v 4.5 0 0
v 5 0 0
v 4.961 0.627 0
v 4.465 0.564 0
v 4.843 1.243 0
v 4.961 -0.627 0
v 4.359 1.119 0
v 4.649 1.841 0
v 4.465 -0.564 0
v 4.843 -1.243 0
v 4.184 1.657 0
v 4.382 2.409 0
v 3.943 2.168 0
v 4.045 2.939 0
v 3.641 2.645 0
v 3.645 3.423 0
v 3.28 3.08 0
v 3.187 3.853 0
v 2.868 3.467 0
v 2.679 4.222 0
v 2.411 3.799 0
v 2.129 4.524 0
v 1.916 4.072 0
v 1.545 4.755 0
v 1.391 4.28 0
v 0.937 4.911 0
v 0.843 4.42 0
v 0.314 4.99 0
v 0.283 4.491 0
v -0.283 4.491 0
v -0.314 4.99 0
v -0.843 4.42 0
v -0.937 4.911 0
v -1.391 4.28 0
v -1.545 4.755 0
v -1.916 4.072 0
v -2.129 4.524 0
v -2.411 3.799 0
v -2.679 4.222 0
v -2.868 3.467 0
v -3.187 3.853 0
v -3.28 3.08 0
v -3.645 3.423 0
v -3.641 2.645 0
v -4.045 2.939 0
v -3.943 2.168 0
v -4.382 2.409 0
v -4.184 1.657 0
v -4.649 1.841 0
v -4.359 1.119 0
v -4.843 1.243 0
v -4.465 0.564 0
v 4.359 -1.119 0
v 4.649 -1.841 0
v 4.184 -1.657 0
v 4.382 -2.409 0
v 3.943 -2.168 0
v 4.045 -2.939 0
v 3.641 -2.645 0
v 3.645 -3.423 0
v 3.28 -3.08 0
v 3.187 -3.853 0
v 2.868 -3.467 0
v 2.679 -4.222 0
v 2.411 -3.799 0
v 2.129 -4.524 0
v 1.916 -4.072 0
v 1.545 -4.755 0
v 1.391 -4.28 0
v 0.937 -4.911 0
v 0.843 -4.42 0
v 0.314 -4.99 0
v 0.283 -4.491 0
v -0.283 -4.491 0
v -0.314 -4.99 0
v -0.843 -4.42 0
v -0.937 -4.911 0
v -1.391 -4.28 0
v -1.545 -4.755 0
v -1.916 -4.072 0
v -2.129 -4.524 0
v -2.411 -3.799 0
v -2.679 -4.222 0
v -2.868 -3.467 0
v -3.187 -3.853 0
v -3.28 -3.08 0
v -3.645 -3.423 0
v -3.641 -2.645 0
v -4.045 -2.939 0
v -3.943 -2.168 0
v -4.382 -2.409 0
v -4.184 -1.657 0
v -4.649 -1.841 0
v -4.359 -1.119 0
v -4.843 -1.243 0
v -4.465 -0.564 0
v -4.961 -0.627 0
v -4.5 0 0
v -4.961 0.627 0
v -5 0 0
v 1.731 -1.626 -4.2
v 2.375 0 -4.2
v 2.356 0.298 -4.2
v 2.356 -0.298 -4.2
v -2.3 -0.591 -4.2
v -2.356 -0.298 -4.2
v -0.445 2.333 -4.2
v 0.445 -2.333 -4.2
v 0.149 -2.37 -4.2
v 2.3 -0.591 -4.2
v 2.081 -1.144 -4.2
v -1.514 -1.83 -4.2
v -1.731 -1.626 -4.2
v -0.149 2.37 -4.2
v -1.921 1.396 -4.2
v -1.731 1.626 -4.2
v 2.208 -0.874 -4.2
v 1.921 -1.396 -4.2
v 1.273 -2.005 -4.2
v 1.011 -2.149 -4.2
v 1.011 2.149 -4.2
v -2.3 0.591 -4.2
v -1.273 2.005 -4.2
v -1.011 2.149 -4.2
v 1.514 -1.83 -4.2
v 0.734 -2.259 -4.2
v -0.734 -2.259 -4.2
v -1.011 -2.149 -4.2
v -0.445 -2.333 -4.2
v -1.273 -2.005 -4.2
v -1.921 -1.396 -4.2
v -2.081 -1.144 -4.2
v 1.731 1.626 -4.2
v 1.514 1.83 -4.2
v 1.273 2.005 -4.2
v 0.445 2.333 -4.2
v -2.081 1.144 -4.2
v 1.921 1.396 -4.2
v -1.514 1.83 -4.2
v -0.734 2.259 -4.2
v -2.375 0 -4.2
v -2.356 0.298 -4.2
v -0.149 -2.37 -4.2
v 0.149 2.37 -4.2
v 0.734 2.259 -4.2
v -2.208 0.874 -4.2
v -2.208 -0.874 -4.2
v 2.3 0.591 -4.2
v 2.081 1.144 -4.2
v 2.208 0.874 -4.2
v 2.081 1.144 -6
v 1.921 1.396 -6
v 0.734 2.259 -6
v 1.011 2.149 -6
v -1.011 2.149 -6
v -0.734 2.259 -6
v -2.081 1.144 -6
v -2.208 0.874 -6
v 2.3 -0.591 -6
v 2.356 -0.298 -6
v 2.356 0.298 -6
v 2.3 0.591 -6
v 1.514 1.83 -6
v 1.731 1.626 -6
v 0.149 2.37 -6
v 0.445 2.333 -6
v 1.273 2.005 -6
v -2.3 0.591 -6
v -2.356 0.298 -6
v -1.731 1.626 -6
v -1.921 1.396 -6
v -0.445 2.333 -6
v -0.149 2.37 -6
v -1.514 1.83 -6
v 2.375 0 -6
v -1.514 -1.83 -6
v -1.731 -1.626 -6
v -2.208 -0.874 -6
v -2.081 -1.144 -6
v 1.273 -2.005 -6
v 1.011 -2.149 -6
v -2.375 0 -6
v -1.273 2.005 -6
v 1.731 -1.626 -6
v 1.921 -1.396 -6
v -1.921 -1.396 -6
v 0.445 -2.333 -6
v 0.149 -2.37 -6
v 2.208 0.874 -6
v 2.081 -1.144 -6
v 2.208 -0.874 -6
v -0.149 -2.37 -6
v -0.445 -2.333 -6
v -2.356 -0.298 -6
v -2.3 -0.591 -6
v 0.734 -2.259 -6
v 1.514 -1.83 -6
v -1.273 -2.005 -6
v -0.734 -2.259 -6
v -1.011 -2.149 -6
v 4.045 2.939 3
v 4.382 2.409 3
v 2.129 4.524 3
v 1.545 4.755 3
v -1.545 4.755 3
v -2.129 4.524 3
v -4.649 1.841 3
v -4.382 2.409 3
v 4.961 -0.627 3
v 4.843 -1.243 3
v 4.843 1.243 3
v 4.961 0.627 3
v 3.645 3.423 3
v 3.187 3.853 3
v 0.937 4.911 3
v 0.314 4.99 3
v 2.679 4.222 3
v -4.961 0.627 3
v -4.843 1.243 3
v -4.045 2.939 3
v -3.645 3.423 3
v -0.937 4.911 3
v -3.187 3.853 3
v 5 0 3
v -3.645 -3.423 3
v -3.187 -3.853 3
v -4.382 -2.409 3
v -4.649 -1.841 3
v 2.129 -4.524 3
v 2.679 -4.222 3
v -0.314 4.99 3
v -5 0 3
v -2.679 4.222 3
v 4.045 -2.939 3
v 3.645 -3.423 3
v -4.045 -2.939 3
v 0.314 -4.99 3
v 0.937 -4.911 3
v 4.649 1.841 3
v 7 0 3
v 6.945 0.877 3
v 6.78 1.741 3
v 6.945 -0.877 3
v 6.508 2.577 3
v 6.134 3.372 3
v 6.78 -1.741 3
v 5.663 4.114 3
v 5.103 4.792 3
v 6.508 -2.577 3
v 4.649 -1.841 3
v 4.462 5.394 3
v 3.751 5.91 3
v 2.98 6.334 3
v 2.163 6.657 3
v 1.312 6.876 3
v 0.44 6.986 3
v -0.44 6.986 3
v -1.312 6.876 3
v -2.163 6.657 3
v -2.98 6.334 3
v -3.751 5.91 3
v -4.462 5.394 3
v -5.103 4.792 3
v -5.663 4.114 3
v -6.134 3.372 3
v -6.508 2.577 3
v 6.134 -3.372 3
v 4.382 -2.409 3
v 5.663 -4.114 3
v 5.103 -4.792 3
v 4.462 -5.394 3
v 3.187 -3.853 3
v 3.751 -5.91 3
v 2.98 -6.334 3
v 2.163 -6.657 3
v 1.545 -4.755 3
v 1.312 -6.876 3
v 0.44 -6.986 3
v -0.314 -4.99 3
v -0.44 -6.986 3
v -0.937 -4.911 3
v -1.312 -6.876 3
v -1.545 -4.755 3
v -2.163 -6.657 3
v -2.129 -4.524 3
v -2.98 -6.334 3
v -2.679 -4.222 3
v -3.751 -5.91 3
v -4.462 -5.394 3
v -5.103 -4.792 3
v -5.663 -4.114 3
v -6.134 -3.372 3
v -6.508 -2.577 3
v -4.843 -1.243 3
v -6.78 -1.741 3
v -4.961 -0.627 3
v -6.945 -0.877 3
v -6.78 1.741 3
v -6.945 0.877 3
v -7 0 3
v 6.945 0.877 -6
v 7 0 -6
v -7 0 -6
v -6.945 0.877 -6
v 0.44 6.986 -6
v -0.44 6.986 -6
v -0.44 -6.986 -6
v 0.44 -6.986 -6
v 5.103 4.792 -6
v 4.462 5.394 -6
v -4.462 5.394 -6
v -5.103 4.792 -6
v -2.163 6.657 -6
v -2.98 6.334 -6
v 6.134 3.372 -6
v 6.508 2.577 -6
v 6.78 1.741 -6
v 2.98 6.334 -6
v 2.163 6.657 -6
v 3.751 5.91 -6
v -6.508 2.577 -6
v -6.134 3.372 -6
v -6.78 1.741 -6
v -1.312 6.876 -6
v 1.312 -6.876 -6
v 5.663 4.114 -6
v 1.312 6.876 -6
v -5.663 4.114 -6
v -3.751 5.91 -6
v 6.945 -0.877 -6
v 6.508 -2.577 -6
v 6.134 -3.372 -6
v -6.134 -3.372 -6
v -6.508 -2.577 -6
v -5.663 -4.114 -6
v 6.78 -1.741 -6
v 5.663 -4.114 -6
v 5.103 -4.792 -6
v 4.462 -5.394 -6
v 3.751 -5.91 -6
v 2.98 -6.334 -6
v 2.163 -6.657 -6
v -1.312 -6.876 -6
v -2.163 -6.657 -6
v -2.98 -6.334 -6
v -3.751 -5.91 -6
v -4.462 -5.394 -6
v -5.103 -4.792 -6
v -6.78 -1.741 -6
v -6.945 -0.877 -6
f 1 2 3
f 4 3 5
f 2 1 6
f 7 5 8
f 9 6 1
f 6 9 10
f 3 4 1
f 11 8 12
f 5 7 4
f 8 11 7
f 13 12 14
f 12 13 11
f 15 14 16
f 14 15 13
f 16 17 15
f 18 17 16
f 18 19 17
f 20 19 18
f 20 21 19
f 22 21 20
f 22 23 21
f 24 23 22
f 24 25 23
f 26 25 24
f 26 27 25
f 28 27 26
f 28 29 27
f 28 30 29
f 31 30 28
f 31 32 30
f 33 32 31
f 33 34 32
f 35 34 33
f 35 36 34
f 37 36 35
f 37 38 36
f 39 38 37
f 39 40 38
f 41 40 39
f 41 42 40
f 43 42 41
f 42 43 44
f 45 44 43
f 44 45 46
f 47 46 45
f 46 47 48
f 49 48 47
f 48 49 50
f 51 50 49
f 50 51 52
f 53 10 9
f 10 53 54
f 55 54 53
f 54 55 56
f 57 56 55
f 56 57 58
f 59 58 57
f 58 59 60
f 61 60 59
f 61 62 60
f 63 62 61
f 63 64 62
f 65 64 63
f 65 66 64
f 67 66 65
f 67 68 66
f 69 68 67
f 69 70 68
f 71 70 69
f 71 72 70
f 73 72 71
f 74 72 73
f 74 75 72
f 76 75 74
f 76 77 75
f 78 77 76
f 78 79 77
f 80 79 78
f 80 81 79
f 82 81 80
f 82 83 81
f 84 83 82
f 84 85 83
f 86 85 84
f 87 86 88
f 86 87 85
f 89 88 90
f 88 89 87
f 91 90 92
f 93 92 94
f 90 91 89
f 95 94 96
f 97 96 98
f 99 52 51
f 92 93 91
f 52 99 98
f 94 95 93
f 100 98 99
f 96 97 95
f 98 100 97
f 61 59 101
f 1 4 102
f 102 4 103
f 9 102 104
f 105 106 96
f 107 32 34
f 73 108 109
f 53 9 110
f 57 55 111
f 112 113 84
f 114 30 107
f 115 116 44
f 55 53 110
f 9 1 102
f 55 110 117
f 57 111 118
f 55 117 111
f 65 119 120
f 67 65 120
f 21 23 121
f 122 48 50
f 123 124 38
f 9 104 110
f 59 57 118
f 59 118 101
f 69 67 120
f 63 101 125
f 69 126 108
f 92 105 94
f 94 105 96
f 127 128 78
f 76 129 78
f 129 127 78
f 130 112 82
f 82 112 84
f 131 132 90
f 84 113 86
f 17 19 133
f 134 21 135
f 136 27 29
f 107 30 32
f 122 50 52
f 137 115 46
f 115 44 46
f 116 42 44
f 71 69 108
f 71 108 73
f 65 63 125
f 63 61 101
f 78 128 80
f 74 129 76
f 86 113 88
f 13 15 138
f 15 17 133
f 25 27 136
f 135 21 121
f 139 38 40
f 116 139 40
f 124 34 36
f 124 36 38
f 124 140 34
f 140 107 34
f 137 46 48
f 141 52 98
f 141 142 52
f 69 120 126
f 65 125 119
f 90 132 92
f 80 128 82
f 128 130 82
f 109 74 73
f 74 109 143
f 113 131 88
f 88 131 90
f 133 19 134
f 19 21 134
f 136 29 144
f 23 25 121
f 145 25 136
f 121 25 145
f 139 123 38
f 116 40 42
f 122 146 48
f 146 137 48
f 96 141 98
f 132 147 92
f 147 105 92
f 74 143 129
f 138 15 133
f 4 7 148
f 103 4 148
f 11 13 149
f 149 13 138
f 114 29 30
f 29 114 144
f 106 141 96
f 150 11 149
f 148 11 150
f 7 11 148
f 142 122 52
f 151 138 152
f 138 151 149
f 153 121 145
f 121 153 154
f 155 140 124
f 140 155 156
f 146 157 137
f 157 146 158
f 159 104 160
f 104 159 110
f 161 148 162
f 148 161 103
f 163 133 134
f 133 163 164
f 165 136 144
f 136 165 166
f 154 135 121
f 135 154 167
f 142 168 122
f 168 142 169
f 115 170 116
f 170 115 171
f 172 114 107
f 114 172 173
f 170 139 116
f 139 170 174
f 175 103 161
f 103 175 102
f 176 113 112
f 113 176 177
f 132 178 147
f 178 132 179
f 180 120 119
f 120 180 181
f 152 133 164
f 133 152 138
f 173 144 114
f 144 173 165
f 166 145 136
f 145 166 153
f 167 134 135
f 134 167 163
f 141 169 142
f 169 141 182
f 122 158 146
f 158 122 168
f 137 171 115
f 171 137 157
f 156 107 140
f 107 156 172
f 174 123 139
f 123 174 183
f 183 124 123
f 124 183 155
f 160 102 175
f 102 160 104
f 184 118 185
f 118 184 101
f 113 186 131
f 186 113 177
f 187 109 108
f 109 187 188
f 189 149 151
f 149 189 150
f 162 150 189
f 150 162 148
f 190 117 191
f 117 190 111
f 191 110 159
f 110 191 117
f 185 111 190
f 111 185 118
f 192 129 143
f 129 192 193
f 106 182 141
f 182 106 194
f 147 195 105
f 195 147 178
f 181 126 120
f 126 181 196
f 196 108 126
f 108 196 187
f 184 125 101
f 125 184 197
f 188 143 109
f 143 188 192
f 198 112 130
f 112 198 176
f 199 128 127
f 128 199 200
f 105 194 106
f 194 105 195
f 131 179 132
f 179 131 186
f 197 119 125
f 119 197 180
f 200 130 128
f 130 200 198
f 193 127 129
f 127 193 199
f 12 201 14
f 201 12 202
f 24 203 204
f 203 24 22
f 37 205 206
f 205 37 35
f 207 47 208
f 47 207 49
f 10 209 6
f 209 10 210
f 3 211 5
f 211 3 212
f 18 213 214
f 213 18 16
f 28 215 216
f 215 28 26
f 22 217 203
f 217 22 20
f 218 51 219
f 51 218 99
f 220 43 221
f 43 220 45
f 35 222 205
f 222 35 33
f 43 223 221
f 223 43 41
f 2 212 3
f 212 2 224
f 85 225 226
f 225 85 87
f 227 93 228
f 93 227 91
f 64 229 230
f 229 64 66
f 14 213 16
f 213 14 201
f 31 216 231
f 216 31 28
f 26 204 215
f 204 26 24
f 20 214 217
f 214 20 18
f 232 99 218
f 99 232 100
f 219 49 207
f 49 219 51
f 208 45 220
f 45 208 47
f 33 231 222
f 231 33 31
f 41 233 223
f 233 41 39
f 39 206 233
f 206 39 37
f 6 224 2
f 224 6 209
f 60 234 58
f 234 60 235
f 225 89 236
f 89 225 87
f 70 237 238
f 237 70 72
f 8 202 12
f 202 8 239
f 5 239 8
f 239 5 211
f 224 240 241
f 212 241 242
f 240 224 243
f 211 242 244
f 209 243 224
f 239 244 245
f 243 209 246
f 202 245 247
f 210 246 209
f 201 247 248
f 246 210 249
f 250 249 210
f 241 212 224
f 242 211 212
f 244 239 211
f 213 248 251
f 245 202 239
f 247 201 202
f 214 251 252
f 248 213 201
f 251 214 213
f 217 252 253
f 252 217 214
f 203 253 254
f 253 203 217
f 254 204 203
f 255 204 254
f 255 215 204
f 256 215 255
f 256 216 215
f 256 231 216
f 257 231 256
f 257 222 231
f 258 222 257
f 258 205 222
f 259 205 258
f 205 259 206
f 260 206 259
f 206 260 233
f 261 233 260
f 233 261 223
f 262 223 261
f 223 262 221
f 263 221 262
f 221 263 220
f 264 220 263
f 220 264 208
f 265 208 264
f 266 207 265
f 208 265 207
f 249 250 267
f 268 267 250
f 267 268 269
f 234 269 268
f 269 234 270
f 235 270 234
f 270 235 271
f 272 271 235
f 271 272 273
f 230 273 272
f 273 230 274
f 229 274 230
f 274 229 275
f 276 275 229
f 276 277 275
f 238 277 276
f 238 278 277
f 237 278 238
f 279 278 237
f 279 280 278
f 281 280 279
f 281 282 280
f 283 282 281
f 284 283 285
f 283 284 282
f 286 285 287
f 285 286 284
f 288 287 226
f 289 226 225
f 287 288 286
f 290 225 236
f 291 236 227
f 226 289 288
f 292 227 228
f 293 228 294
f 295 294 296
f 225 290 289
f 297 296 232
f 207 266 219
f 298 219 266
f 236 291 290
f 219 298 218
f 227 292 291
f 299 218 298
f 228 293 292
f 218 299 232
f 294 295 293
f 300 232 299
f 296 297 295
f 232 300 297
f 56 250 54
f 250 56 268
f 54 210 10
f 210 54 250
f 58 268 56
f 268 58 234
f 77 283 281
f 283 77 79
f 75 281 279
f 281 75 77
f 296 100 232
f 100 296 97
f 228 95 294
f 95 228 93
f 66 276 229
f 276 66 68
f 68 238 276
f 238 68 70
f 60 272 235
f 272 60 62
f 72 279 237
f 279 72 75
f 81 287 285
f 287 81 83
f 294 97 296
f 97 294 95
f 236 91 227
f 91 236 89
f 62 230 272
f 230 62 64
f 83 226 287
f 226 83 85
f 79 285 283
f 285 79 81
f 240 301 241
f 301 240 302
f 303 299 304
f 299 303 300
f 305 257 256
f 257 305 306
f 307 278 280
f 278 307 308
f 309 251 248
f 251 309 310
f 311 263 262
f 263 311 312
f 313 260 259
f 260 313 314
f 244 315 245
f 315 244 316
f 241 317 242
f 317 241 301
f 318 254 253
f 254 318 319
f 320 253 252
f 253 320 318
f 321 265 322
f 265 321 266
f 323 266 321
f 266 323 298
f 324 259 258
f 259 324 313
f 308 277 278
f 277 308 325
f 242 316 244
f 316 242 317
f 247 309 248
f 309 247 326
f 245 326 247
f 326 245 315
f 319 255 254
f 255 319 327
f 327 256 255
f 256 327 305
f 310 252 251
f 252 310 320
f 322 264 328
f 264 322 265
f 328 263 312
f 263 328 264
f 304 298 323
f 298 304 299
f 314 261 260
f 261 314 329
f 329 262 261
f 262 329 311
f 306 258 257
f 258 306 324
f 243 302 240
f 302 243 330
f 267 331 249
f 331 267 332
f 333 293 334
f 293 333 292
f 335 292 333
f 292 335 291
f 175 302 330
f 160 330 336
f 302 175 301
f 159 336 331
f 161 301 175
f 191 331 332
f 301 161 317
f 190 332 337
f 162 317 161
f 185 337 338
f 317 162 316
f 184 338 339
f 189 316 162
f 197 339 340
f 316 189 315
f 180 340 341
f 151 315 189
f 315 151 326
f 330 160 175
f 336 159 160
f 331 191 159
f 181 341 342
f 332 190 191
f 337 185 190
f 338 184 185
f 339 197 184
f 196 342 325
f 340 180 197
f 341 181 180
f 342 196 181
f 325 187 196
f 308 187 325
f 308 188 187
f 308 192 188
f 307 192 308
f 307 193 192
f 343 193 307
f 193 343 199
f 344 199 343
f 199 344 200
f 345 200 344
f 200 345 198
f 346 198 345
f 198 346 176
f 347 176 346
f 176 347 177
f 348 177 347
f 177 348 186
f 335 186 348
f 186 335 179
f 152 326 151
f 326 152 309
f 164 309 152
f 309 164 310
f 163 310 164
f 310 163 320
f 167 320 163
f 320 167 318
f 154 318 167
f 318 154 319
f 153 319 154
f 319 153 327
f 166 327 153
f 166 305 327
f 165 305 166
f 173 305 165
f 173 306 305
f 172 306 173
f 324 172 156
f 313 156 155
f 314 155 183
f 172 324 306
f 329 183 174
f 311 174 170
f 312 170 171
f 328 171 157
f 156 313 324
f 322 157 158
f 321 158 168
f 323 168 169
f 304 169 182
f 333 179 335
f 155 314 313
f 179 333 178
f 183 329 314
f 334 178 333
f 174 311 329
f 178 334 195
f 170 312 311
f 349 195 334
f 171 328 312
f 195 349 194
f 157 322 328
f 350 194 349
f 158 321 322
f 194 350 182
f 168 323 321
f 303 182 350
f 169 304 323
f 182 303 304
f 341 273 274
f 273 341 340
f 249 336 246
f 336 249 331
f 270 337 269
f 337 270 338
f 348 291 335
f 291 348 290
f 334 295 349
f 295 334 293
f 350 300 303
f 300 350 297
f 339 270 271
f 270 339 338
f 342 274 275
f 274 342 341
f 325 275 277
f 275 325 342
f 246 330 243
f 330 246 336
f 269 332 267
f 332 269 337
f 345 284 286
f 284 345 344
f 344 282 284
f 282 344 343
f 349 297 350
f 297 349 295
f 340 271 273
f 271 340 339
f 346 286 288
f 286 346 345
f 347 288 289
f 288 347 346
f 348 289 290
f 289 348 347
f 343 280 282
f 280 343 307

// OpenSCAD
$fn = 50;

difference() {
	union() {
		translate(v = [0, 0, -6.0]) {
			cylinder(h = 9, r = 7.0);
		}
	}
	union() {
		translate(v = [0, 0, 0]) {
			rotate(a = [0, 0, 0]) {
				difference() {
					union() {
						translate(v = [0, 0, -9.0]) {
							cylinder(h = 9, r = 2.25);
						}
						translate(v = [0, 0, -4.2]) {
							cylinder(h = 4.2, r1 = 2.375, r2 = 4.5);
						}
						translate(v = [0, 0, -9.0]) {
							cylinder(h = 9, r = 2.375);
						}
						translate(v = [0, 0, -9.0]) {
							cylinder(h = 9, r = 2.25);
						}
					}
					union();
				}
			}
		}
		#cylinder(h = 3, r = 5.0);
	}
}
